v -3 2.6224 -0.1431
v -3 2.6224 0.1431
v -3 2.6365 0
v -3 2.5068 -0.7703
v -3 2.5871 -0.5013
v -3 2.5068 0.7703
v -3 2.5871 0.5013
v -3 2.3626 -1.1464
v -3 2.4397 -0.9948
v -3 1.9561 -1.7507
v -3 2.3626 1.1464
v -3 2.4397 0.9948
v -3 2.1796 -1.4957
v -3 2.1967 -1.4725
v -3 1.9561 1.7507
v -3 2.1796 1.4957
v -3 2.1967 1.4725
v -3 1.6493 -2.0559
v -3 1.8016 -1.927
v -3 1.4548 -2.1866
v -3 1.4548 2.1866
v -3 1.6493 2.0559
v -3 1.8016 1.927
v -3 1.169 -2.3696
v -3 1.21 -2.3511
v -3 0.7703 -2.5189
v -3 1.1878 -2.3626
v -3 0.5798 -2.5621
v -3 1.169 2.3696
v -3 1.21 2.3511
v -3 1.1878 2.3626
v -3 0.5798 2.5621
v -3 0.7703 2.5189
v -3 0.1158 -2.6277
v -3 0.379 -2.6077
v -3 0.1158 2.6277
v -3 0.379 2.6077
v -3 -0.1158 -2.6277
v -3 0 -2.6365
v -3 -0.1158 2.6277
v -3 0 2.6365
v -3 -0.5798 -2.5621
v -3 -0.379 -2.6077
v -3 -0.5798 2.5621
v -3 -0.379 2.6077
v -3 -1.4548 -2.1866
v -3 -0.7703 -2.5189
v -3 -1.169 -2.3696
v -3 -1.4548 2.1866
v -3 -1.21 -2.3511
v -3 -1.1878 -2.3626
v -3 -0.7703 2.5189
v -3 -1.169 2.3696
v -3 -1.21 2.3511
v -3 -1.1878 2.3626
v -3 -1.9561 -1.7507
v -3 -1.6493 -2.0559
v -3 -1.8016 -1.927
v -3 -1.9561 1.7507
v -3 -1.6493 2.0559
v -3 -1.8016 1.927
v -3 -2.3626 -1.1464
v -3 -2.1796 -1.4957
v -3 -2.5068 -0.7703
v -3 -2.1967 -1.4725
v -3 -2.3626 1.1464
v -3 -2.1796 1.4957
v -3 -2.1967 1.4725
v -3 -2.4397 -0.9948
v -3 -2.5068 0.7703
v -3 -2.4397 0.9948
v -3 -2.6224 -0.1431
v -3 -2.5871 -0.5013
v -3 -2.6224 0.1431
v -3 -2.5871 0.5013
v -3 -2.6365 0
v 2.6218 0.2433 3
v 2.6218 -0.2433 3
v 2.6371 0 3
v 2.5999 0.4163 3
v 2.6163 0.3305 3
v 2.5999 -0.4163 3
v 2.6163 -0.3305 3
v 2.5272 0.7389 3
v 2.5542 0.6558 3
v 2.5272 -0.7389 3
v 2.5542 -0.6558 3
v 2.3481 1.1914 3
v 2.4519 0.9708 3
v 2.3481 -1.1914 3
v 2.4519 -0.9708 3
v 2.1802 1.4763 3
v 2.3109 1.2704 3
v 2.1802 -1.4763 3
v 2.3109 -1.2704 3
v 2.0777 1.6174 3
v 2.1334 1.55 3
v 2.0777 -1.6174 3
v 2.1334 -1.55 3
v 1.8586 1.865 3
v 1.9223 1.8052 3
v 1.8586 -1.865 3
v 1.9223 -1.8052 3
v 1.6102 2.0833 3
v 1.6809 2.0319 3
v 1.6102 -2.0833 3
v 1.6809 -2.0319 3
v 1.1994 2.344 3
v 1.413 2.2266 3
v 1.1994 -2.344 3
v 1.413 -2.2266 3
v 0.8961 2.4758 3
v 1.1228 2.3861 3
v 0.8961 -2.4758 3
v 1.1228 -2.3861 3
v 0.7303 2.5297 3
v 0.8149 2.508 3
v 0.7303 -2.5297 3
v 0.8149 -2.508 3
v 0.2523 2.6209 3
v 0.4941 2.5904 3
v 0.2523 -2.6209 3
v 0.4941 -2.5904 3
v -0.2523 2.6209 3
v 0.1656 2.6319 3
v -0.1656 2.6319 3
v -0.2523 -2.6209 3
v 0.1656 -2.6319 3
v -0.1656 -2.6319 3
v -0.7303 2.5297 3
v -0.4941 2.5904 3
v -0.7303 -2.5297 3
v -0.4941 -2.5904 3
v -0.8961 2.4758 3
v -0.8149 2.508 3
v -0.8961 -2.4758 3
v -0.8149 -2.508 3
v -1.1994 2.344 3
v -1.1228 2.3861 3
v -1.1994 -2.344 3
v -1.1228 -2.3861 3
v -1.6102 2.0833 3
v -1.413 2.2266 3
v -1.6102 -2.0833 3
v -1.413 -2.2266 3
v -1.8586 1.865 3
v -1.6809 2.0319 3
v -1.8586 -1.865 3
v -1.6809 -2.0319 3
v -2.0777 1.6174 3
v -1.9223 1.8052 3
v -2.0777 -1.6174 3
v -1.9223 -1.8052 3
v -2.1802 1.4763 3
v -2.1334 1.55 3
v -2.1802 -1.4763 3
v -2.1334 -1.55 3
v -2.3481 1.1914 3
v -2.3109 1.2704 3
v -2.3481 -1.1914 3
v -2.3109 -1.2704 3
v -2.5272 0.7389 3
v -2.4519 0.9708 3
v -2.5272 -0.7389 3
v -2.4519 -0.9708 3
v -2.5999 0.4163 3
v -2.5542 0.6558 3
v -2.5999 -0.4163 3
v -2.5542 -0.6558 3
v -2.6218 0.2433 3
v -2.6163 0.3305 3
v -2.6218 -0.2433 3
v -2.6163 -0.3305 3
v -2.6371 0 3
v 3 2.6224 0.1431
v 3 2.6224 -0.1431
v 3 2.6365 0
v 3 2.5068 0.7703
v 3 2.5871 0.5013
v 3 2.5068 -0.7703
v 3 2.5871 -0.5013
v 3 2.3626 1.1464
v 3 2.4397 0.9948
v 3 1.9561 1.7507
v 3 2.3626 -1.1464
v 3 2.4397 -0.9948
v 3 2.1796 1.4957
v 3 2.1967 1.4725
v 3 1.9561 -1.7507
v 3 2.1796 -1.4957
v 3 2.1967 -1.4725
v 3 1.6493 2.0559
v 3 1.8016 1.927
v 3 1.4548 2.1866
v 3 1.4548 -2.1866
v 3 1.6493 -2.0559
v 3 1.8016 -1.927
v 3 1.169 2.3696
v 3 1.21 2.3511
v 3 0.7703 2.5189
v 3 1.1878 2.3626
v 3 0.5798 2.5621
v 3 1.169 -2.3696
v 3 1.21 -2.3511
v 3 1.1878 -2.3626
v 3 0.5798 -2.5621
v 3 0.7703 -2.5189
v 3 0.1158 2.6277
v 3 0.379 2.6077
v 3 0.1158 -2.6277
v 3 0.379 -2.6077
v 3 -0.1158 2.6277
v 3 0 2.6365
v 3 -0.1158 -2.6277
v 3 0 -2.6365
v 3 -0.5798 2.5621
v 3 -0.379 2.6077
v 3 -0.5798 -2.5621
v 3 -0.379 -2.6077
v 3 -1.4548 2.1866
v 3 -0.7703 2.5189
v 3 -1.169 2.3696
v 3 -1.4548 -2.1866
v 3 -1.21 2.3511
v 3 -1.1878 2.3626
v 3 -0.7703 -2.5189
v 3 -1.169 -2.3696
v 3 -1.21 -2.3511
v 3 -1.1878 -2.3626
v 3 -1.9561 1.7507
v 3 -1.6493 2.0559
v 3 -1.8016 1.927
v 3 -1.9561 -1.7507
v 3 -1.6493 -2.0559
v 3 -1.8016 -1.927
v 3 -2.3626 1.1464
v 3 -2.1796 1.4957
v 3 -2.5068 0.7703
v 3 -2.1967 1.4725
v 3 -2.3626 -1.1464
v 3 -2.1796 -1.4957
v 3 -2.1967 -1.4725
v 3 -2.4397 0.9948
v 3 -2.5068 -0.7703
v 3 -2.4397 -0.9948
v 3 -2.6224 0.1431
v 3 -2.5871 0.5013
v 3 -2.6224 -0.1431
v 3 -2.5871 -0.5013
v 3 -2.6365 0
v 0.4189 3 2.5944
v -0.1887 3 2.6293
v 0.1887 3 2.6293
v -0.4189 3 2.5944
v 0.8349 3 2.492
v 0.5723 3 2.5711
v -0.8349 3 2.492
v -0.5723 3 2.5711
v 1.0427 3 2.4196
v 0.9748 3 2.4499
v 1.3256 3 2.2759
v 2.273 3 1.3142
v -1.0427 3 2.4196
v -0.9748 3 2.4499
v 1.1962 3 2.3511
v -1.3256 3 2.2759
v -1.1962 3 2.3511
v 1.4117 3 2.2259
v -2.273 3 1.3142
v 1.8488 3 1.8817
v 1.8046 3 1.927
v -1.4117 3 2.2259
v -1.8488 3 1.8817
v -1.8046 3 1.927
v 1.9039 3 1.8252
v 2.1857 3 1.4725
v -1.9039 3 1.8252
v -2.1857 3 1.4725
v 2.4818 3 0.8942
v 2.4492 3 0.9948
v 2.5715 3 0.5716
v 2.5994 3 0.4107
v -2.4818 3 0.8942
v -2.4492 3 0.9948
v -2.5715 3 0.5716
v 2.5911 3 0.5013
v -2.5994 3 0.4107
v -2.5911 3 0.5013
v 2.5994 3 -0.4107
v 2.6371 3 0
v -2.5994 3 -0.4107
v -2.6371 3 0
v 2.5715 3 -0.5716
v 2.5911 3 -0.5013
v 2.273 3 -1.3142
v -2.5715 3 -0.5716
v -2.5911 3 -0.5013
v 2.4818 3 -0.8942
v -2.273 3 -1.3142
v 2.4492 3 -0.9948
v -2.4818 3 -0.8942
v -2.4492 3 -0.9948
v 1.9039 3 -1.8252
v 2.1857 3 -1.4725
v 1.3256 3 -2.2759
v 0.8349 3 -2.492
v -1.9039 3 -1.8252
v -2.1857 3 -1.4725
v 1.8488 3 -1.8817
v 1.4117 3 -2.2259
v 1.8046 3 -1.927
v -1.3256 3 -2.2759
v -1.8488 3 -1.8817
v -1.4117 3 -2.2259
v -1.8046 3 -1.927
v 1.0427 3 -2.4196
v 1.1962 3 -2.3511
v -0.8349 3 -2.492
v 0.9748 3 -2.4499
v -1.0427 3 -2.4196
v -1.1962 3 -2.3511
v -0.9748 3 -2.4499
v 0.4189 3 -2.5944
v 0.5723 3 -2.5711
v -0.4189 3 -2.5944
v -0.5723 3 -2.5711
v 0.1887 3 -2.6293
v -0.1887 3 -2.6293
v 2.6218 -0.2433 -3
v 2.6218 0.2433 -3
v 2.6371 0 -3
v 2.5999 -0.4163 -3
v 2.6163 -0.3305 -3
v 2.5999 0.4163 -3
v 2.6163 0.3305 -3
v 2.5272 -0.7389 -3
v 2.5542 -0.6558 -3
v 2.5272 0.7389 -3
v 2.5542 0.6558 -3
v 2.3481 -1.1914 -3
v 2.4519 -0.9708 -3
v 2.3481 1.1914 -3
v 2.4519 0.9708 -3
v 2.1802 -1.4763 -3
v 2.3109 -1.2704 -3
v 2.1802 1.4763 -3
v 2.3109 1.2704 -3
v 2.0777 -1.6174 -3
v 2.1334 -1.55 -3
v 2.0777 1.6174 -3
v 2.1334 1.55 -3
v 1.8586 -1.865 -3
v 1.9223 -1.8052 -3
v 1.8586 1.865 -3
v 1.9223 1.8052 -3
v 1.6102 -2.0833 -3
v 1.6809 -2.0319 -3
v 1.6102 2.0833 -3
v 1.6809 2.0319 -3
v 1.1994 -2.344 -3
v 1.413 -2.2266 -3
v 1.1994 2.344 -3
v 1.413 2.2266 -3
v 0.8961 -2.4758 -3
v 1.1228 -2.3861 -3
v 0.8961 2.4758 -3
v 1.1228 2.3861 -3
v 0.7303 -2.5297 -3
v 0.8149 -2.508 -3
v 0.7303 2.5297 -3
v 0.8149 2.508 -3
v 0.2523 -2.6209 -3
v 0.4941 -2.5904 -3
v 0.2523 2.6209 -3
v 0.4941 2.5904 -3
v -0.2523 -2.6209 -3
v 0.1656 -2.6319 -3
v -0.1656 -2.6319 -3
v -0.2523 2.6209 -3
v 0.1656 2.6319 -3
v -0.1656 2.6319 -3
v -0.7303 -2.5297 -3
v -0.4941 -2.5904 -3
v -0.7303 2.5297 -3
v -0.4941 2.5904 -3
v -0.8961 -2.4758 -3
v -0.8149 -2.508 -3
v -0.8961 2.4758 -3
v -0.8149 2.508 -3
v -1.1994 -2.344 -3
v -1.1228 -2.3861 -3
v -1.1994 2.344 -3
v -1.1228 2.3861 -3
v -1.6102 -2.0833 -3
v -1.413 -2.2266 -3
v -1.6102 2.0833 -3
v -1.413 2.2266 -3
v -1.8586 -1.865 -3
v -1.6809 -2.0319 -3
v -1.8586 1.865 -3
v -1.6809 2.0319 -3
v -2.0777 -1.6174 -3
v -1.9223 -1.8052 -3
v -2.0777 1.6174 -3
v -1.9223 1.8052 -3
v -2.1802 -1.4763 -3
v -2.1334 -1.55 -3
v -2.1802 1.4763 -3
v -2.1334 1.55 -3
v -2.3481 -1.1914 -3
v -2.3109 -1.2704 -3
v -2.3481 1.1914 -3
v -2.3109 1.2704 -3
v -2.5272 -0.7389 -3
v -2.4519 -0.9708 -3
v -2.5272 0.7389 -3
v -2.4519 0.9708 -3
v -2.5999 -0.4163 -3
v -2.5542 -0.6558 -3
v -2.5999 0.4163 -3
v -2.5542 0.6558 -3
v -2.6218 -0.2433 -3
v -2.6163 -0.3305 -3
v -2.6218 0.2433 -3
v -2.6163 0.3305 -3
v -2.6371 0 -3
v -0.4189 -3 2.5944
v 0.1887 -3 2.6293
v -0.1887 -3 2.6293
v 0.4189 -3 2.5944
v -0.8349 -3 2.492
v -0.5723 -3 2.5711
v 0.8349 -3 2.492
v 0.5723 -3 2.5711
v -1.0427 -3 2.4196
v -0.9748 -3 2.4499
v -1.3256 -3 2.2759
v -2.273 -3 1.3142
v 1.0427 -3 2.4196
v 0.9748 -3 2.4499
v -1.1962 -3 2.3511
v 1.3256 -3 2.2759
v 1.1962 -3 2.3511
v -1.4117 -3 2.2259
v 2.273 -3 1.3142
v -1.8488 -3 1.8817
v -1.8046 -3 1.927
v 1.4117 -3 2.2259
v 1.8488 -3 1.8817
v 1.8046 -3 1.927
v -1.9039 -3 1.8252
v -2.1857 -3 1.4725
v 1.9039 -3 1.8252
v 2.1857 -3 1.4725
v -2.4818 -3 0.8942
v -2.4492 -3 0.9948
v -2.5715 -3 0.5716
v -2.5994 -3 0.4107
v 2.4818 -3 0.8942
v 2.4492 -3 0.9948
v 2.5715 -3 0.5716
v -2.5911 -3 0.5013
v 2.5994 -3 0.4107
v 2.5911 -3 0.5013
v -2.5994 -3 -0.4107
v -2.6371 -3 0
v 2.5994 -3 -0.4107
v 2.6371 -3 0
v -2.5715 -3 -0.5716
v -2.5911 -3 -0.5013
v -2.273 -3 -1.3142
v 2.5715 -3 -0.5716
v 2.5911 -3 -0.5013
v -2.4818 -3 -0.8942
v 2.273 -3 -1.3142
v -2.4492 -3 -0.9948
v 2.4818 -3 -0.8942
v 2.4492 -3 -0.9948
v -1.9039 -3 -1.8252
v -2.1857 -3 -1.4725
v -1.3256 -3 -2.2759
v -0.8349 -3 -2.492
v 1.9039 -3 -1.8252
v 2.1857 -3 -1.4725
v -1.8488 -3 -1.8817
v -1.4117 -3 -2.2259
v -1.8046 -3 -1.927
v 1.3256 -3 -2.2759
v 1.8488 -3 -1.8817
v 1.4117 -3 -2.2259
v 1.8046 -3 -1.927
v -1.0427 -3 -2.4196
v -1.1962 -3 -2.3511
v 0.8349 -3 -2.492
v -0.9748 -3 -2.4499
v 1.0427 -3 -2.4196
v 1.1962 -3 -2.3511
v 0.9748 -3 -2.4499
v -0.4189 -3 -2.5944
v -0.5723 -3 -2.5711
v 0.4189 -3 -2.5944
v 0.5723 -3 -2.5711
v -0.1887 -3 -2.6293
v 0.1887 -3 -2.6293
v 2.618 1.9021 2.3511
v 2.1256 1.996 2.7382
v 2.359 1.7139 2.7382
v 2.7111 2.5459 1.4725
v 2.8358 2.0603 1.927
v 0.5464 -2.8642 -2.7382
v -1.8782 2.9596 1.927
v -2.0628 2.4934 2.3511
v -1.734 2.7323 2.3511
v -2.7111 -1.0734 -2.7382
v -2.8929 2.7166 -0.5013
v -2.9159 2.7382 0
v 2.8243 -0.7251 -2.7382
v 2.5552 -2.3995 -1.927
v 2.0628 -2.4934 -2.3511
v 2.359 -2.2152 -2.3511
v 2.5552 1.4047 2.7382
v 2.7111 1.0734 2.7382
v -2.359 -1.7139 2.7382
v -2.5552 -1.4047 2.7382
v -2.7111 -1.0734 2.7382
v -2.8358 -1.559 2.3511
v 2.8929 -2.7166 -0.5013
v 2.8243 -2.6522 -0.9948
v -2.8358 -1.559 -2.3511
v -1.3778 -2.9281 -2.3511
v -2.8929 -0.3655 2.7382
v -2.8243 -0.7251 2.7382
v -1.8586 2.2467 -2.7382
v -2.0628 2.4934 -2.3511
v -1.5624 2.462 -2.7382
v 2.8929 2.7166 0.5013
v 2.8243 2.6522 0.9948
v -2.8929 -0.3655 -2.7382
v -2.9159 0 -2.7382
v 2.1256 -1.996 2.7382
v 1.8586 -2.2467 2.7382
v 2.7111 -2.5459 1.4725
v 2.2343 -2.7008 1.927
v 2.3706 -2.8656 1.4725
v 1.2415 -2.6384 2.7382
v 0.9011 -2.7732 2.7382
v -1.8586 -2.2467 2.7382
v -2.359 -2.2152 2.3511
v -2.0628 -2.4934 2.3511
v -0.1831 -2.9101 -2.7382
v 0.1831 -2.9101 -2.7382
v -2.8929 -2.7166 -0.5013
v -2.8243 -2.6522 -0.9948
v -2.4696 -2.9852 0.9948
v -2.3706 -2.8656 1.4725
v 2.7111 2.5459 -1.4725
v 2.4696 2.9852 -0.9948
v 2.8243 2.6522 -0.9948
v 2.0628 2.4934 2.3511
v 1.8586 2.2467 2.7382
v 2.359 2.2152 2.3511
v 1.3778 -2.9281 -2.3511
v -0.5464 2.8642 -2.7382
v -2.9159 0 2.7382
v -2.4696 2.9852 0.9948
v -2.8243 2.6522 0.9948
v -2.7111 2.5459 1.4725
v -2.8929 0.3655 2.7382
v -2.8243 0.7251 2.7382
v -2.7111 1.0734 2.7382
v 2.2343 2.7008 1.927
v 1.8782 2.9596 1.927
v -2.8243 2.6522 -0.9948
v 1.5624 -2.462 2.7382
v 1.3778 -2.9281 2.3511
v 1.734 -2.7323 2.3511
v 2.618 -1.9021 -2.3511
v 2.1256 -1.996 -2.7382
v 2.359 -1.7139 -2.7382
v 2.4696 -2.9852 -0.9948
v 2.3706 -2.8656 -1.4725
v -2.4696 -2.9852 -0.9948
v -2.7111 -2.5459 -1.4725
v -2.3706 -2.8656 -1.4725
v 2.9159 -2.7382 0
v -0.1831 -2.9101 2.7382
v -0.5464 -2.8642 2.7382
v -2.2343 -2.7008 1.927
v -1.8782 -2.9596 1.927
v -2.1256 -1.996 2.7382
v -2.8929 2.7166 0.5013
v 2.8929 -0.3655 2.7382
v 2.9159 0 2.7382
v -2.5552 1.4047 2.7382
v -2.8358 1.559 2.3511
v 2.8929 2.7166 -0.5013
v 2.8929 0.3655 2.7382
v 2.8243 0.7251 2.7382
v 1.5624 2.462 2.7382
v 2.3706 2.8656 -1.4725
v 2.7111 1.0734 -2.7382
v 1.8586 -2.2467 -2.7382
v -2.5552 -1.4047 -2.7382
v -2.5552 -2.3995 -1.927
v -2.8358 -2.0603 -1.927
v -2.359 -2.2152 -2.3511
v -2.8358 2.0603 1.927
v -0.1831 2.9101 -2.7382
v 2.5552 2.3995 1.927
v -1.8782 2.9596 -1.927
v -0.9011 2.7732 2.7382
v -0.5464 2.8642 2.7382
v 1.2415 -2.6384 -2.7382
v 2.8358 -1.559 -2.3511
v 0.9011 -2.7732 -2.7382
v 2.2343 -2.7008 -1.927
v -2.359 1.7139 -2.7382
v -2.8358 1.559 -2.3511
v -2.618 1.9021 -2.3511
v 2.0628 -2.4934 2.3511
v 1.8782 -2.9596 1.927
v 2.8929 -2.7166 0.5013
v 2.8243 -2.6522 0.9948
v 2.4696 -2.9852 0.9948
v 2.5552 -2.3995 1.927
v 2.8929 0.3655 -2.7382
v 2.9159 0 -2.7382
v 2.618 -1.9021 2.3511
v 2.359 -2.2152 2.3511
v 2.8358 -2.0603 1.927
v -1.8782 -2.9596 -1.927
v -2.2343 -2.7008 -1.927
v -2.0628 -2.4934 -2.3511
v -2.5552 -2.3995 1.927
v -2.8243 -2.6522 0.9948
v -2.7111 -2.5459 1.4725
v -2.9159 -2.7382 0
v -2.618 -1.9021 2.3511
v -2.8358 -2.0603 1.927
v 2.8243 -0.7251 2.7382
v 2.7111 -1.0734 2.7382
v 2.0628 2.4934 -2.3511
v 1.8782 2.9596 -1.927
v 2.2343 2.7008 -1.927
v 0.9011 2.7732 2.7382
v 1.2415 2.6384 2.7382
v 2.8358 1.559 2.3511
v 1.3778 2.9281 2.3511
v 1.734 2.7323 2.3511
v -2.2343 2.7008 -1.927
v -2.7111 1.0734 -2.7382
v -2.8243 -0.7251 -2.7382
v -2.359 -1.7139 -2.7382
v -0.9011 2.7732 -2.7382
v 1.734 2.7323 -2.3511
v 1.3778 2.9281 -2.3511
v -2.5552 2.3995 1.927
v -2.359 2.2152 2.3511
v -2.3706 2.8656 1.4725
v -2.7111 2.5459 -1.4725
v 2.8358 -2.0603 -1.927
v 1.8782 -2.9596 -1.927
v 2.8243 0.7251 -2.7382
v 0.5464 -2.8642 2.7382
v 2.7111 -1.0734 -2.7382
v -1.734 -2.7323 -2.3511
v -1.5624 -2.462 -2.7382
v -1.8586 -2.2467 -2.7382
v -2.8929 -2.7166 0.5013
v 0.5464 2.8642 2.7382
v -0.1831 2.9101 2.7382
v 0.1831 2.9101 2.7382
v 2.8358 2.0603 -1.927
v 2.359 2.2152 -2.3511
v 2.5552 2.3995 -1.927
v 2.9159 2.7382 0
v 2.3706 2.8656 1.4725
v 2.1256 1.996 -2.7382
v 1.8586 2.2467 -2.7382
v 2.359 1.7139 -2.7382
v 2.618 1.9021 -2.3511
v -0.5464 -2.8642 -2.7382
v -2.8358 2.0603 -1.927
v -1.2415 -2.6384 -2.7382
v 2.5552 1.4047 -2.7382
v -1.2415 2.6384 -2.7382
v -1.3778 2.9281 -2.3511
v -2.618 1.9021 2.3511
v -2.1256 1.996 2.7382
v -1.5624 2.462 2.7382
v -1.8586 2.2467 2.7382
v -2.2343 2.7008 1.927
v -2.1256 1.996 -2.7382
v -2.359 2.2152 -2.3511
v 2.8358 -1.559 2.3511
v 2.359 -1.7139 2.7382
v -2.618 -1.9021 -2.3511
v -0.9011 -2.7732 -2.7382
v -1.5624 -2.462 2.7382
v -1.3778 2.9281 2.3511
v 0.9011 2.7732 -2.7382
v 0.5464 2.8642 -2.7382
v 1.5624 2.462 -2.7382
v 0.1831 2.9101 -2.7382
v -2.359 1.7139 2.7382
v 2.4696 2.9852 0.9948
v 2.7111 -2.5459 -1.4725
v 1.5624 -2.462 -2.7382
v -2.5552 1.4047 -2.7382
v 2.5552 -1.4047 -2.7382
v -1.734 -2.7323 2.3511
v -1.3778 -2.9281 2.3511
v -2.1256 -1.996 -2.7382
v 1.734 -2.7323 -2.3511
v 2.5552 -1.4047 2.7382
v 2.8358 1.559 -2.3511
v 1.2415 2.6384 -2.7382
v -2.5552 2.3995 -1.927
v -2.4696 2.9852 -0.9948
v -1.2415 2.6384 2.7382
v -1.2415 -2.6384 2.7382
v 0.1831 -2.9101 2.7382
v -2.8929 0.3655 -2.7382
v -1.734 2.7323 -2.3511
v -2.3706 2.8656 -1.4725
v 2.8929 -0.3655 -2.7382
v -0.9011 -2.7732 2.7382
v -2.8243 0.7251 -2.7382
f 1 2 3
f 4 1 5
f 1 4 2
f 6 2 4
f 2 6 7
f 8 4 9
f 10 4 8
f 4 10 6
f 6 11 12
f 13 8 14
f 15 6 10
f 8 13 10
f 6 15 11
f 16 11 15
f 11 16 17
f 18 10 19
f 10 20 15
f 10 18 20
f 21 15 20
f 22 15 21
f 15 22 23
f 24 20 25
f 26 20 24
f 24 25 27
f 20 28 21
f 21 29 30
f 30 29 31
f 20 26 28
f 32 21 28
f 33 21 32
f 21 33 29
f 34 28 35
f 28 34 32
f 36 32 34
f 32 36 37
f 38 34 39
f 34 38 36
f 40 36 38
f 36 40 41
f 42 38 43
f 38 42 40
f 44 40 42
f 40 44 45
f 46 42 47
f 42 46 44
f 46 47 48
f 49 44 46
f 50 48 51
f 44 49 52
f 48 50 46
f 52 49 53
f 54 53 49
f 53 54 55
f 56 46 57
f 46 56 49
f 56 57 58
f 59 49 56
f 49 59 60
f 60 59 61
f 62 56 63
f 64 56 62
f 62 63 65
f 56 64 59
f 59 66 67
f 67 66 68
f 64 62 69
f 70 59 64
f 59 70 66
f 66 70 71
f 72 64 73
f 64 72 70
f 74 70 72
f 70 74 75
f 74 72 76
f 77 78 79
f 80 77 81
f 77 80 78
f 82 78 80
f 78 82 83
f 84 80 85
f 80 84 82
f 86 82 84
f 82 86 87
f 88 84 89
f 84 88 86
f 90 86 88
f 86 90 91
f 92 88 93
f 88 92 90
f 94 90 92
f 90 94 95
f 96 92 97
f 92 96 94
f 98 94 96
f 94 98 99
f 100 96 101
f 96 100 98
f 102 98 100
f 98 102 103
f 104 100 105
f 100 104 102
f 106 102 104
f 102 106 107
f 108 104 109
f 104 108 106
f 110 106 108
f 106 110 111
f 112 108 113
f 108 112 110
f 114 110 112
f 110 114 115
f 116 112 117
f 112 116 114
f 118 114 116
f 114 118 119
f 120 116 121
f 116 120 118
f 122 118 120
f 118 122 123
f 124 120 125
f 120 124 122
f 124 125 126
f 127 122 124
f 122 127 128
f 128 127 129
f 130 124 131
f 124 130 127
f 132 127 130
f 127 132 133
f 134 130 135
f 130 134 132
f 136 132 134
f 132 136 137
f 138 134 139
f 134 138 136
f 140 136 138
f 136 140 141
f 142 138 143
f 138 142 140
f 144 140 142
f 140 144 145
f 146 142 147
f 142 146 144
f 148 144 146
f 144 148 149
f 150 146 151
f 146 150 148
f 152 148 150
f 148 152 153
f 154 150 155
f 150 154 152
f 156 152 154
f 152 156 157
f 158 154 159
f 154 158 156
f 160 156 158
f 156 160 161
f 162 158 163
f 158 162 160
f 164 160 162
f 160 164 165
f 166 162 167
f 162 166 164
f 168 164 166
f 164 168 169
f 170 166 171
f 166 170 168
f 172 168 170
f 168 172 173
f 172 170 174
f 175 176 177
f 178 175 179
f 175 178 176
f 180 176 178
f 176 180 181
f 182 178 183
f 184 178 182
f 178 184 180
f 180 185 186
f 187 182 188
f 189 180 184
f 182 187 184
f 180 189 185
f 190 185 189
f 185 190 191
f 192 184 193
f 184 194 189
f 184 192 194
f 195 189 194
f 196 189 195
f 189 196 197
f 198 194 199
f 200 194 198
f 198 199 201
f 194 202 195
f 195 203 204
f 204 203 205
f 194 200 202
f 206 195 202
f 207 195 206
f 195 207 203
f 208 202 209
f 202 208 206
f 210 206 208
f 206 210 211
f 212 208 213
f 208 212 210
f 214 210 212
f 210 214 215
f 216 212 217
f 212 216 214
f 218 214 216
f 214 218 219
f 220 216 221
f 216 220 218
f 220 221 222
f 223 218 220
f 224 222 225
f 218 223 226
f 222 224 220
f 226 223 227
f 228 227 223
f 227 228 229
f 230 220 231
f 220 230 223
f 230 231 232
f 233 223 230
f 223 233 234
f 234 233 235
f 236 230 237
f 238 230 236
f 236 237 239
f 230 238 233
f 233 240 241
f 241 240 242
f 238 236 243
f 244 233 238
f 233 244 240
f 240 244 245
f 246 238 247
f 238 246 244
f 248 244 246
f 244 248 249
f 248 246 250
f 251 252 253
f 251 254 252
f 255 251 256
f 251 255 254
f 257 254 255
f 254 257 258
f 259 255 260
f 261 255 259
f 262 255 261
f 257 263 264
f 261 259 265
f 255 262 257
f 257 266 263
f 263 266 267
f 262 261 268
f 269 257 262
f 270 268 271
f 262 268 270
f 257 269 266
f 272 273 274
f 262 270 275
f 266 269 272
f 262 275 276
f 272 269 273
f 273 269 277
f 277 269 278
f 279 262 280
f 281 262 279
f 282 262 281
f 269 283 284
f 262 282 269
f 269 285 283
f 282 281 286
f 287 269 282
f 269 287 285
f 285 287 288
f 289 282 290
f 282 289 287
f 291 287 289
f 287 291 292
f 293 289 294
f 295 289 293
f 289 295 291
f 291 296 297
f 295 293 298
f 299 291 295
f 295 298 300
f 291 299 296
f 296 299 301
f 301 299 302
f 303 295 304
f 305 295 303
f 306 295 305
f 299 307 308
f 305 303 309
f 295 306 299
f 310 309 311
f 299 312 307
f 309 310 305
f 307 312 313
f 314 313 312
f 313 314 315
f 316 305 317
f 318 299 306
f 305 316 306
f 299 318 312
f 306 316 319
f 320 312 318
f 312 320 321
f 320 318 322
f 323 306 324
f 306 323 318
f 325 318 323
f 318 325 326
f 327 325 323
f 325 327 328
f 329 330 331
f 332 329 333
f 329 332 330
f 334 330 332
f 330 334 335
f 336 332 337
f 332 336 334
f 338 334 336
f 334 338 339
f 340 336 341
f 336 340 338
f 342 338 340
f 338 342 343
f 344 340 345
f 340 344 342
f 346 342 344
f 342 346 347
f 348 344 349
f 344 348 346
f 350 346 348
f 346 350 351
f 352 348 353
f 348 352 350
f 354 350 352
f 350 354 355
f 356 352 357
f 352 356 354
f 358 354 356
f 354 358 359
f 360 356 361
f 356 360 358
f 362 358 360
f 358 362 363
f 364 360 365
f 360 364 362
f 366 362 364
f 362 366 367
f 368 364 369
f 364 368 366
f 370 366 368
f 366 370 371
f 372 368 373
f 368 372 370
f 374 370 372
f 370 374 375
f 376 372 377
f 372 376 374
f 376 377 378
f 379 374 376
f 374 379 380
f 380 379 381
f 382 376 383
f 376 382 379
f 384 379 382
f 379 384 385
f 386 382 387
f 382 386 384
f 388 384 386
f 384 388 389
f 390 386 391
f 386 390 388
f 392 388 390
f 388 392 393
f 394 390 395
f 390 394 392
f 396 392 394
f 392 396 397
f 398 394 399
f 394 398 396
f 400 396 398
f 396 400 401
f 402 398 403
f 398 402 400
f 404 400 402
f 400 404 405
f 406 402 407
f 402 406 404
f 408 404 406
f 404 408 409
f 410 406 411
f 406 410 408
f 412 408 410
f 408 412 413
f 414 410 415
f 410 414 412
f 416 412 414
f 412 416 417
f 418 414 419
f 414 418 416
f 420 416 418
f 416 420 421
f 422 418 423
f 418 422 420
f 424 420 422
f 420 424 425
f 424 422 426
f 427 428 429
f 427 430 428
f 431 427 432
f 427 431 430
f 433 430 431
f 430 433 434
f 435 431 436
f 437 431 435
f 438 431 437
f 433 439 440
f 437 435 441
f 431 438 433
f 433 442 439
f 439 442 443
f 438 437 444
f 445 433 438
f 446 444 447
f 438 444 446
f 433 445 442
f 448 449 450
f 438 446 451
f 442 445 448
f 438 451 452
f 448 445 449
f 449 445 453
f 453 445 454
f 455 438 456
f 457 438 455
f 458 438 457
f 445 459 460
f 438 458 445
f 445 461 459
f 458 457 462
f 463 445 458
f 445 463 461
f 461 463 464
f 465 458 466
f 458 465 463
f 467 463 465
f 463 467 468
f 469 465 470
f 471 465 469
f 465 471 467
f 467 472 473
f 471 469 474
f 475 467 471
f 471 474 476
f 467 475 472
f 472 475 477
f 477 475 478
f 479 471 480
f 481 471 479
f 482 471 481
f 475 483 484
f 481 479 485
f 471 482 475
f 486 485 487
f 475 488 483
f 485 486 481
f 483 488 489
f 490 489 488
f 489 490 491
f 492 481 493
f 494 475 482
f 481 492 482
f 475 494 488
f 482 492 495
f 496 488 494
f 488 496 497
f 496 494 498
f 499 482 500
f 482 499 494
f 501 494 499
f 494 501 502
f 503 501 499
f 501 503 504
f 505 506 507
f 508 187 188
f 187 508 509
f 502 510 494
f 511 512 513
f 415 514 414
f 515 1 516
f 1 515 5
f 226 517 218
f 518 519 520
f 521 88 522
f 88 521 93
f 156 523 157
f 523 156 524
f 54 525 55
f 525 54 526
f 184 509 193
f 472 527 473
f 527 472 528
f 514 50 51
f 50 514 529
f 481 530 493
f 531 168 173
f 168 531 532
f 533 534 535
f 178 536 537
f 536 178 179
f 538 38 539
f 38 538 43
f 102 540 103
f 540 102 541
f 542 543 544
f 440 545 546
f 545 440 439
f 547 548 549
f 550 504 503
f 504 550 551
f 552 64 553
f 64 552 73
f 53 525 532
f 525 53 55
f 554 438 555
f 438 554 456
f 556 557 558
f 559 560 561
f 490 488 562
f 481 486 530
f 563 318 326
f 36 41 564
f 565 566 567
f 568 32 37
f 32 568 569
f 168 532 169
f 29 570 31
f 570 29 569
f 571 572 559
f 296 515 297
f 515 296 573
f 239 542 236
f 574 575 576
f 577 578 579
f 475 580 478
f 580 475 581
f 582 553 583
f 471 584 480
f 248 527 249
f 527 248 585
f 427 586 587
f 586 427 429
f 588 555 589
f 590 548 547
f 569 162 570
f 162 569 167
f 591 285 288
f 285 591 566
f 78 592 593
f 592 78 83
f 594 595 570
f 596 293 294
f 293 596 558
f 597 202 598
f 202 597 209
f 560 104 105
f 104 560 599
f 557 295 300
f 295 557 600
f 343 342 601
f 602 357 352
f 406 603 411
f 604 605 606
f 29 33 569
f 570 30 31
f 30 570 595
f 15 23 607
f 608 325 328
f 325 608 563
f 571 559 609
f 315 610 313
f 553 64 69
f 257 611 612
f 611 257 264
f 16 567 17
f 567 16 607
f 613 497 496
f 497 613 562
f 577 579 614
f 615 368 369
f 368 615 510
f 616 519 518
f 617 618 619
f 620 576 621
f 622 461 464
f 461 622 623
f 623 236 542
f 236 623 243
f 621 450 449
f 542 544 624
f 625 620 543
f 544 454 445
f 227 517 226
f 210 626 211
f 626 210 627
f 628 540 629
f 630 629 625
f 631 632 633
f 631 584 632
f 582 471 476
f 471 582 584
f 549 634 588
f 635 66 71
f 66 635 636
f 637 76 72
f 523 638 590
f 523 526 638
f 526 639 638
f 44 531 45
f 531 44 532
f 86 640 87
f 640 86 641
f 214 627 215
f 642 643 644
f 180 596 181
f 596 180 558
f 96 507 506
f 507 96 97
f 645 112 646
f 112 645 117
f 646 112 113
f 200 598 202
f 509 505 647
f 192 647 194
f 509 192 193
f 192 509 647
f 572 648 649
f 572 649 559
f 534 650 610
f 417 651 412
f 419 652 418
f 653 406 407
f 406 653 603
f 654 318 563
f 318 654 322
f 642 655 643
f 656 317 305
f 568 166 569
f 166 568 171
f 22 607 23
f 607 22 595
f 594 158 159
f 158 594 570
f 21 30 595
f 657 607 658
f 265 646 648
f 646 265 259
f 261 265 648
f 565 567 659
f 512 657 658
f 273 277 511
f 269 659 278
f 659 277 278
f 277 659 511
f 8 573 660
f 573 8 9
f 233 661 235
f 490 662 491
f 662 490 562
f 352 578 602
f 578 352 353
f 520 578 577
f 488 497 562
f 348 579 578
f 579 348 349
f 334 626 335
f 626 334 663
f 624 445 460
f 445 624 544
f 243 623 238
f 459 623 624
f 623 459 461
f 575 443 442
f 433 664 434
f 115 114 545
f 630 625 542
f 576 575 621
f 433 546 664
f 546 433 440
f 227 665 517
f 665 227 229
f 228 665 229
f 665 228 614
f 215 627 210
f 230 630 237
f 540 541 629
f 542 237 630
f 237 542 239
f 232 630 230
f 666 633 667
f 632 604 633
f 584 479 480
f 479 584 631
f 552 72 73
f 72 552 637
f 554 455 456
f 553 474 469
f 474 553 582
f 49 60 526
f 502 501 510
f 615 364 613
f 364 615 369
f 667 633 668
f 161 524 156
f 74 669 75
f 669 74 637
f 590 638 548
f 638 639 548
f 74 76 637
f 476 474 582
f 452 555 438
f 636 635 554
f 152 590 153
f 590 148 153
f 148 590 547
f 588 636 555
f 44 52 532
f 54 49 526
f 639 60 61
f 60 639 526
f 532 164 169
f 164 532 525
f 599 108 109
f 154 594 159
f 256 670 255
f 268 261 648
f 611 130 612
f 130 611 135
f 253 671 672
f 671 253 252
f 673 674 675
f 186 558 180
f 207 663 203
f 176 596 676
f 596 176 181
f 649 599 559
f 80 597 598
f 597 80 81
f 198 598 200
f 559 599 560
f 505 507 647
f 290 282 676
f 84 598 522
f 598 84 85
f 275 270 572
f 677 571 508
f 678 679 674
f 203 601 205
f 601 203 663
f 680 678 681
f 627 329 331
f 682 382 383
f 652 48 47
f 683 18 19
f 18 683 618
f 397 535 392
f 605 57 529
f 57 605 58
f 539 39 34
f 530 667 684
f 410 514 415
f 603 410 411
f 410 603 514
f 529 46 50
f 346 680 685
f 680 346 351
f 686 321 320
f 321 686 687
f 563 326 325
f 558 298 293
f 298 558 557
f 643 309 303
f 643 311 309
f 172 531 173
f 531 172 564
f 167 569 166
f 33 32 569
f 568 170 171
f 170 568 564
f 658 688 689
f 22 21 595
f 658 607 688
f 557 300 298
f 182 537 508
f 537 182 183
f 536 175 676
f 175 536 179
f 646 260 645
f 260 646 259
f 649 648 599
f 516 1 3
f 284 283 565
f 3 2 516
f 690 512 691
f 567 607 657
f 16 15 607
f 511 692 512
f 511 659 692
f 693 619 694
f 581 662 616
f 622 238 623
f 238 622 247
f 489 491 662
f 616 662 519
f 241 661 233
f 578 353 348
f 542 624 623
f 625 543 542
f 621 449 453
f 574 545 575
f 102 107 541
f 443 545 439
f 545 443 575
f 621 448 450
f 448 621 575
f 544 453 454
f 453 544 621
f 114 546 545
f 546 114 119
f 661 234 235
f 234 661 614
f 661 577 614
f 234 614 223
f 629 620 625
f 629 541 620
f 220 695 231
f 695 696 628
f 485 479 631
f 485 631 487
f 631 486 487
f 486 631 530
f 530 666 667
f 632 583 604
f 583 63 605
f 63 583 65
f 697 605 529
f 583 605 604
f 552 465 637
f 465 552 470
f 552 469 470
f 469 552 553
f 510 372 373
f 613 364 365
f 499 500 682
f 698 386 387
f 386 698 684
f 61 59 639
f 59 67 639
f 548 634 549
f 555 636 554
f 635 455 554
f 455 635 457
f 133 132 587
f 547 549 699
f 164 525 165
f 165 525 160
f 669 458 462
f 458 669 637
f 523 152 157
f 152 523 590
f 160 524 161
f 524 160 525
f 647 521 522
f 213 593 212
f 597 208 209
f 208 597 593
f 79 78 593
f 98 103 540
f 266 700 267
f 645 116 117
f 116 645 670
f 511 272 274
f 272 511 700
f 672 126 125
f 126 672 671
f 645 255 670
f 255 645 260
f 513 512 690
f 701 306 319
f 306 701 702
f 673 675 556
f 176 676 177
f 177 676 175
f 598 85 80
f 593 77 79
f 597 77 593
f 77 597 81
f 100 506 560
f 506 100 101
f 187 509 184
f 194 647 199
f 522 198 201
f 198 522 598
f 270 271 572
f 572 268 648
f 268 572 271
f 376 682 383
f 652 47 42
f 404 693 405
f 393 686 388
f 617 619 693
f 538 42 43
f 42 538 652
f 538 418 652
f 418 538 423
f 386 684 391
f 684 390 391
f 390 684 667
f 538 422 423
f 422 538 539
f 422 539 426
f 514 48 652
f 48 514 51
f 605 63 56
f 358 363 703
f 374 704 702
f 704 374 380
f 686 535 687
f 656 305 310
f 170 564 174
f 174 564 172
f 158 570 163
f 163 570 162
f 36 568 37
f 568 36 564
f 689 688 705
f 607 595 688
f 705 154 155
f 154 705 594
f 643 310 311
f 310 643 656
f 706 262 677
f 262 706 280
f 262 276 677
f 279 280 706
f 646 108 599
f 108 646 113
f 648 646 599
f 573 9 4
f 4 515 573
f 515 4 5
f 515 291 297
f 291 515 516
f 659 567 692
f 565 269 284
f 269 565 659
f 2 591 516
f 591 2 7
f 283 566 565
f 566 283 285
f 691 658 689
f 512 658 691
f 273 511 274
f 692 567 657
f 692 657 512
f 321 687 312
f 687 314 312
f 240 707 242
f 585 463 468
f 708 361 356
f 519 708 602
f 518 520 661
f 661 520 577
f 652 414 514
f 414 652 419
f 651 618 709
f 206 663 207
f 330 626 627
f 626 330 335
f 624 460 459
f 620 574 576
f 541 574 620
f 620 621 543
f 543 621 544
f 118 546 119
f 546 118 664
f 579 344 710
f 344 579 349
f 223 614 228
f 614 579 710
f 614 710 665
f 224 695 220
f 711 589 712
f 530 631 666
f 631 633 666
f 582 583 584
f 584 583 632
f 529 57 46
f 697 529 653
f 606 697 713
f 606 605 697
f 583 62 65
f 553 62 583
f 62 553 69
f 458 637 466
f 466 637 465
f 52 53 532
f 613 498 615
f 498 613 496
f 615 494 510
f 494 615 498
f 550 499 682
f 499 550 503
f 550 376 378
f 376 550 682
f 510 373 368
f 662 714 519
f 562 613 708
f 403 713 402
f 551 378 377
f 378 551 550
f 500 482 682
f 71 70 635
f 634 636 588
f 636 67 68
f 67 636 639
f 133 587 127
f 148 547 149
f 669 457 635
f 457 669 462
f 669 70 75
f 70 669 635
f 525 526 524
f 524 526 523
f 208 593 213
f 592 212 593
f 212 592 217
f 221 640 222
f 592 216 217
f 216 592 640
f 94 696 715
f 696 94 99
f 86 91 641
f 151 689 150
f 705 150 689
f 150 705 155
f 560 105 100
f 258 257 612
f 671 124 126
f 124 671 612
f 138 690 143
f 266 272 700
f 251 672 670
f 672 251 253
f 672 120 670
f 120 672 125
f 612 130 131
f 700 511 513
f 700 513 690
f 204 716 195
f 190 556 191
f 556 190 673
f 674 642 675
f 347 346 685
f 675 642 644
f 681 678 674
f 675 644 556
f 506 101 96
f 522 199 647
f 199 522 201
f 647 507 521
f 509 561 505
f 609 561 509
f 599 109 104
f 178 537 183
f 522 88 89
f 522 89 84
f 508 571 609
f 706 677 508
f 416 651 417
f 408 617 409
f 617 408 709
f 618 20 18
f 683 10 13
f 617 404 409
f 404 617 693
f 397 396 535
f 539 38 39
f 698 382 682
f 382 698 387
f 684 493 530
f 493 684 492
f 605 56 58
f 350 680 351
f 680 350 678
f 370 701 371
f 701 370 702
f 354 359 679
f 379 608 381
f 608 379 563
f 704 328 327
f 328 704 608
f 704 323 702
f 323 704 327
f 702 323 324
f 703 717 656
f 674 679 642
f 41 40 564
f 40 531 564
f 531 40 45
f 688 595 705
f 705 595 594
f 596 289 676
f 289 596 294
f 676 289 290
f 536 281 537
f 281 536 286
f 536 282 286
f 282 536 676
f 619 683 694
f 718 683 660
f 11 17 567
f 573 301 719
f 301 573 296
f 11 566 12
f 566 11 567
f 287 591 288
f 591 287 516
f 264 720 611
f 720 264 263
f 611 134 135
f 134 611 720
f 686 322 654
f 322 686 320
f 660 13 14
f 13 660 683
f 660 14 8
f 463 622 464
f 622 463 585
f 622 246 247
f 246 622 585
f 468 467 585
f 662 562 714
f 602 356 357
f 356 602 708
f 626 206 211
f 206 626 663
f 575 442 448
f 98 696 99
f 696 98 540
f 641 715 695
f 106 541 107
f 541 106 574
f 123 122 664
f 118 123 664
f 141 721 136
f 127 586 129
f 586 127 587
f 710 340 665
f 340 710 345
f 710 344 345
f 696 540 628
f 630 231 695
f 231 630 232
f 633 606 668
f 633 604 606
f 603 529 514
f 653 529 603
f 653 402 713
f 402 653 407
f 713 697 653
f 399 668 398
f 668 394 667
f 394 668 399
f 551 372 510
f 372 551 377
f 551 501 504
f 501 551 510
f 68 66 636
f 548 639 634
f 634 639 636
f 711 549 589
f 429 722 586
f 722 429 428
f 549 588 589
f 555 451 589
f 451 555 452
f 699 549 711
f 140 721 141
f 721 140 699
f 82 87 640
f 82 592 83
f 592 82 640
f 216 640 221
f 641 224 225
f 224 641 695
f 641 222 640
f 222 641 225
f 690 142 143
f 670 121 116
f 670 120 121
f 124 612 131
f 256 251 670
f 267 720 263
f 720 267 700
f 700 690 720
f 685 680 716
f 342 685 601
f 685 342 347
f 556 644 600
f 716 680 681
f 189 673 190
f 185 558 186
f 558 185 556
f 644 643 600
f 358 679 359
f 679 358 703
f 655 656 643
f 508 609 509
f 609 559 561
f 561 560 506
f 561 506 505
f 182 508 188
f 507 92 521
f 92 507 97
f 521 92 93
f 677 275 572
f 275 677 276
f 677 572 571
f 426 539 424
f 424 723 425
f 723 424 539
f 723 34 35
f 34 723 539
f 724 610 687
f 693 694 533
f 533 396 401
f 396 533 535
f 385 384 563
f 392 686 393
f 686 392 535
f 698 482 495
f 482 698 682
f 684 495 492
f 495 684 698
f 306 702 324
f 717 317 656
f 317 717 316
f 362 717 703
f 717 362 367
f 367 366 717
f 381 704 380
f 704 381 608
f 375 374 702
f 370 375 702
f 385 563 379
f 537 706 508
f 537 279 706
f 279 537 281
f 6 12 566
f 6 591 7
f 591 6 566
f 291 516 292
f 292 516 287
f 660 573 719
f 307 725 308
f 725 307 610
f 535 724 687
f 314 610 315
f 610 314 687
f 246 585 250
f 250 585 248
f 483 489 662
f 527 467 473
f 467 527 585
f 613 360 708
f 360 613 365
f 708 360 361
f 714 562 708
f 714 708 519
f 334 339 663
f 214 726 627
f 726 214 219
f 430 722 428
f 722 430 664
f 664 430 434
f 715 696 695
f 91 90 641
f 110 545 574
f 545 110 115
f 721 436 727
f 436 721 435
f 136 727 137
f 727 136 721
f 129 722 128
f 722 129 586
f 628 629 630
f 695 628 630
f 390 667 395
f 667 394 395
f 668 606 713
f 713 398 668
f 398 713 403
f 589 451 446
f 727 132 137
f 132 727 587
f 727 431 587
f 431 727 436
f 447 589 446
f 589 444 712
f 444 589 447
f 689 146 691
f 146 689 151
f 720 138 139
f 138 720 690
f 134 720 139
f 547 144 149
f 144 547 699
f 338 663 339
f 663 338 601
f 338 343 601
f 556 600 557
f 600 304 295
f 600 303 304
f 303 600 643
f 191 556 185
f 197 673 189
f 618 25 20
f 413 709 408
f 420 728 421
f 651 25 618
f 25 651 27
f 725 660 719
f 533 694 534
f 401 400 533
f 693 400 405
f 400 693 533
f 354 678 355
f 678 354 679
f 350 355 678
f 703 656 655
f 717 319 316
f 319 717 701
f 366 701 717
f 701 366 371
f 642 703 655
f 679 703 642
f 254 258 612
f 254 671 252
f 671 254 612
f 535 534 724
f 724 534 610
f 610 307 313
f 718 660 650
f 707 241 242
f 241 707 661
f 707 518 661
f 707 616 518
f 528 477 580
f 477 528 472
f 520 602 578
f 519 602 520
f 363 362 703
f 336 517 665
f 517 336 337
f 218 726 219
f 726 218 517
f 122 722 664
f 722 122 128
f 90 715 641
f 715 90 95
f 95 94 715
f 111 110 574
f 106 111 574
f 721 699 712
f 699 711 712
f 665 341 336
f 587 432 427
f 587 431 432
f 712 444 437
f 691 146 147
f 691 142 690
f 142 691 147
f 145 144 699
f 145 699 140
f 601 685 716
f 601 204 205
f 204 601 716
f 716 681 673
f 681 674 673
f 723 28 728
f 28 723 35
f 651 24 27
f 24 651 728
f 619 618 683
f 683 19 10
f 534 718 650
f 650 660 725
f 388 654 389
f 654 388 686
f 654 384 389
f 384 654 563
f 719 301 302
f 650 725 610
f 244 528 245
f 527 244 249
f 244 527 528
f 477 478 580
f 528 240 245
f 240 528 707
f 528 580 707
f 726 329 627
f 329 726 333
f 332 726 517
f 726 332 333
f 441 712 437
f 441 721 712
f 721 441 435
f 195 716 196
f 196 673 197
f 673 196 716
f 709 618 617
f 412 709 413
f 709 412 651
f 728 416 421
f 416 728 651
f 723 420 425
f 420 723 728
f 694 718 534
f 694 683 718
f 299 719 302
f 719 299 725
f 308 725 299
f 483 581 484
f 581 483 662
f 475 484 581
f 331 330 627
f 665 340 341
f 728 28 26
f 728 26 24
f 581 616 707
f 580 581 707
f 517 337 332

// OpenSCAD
intersection(){
	cube(6, center=true);
	sphere(4, $fn=50);
}
